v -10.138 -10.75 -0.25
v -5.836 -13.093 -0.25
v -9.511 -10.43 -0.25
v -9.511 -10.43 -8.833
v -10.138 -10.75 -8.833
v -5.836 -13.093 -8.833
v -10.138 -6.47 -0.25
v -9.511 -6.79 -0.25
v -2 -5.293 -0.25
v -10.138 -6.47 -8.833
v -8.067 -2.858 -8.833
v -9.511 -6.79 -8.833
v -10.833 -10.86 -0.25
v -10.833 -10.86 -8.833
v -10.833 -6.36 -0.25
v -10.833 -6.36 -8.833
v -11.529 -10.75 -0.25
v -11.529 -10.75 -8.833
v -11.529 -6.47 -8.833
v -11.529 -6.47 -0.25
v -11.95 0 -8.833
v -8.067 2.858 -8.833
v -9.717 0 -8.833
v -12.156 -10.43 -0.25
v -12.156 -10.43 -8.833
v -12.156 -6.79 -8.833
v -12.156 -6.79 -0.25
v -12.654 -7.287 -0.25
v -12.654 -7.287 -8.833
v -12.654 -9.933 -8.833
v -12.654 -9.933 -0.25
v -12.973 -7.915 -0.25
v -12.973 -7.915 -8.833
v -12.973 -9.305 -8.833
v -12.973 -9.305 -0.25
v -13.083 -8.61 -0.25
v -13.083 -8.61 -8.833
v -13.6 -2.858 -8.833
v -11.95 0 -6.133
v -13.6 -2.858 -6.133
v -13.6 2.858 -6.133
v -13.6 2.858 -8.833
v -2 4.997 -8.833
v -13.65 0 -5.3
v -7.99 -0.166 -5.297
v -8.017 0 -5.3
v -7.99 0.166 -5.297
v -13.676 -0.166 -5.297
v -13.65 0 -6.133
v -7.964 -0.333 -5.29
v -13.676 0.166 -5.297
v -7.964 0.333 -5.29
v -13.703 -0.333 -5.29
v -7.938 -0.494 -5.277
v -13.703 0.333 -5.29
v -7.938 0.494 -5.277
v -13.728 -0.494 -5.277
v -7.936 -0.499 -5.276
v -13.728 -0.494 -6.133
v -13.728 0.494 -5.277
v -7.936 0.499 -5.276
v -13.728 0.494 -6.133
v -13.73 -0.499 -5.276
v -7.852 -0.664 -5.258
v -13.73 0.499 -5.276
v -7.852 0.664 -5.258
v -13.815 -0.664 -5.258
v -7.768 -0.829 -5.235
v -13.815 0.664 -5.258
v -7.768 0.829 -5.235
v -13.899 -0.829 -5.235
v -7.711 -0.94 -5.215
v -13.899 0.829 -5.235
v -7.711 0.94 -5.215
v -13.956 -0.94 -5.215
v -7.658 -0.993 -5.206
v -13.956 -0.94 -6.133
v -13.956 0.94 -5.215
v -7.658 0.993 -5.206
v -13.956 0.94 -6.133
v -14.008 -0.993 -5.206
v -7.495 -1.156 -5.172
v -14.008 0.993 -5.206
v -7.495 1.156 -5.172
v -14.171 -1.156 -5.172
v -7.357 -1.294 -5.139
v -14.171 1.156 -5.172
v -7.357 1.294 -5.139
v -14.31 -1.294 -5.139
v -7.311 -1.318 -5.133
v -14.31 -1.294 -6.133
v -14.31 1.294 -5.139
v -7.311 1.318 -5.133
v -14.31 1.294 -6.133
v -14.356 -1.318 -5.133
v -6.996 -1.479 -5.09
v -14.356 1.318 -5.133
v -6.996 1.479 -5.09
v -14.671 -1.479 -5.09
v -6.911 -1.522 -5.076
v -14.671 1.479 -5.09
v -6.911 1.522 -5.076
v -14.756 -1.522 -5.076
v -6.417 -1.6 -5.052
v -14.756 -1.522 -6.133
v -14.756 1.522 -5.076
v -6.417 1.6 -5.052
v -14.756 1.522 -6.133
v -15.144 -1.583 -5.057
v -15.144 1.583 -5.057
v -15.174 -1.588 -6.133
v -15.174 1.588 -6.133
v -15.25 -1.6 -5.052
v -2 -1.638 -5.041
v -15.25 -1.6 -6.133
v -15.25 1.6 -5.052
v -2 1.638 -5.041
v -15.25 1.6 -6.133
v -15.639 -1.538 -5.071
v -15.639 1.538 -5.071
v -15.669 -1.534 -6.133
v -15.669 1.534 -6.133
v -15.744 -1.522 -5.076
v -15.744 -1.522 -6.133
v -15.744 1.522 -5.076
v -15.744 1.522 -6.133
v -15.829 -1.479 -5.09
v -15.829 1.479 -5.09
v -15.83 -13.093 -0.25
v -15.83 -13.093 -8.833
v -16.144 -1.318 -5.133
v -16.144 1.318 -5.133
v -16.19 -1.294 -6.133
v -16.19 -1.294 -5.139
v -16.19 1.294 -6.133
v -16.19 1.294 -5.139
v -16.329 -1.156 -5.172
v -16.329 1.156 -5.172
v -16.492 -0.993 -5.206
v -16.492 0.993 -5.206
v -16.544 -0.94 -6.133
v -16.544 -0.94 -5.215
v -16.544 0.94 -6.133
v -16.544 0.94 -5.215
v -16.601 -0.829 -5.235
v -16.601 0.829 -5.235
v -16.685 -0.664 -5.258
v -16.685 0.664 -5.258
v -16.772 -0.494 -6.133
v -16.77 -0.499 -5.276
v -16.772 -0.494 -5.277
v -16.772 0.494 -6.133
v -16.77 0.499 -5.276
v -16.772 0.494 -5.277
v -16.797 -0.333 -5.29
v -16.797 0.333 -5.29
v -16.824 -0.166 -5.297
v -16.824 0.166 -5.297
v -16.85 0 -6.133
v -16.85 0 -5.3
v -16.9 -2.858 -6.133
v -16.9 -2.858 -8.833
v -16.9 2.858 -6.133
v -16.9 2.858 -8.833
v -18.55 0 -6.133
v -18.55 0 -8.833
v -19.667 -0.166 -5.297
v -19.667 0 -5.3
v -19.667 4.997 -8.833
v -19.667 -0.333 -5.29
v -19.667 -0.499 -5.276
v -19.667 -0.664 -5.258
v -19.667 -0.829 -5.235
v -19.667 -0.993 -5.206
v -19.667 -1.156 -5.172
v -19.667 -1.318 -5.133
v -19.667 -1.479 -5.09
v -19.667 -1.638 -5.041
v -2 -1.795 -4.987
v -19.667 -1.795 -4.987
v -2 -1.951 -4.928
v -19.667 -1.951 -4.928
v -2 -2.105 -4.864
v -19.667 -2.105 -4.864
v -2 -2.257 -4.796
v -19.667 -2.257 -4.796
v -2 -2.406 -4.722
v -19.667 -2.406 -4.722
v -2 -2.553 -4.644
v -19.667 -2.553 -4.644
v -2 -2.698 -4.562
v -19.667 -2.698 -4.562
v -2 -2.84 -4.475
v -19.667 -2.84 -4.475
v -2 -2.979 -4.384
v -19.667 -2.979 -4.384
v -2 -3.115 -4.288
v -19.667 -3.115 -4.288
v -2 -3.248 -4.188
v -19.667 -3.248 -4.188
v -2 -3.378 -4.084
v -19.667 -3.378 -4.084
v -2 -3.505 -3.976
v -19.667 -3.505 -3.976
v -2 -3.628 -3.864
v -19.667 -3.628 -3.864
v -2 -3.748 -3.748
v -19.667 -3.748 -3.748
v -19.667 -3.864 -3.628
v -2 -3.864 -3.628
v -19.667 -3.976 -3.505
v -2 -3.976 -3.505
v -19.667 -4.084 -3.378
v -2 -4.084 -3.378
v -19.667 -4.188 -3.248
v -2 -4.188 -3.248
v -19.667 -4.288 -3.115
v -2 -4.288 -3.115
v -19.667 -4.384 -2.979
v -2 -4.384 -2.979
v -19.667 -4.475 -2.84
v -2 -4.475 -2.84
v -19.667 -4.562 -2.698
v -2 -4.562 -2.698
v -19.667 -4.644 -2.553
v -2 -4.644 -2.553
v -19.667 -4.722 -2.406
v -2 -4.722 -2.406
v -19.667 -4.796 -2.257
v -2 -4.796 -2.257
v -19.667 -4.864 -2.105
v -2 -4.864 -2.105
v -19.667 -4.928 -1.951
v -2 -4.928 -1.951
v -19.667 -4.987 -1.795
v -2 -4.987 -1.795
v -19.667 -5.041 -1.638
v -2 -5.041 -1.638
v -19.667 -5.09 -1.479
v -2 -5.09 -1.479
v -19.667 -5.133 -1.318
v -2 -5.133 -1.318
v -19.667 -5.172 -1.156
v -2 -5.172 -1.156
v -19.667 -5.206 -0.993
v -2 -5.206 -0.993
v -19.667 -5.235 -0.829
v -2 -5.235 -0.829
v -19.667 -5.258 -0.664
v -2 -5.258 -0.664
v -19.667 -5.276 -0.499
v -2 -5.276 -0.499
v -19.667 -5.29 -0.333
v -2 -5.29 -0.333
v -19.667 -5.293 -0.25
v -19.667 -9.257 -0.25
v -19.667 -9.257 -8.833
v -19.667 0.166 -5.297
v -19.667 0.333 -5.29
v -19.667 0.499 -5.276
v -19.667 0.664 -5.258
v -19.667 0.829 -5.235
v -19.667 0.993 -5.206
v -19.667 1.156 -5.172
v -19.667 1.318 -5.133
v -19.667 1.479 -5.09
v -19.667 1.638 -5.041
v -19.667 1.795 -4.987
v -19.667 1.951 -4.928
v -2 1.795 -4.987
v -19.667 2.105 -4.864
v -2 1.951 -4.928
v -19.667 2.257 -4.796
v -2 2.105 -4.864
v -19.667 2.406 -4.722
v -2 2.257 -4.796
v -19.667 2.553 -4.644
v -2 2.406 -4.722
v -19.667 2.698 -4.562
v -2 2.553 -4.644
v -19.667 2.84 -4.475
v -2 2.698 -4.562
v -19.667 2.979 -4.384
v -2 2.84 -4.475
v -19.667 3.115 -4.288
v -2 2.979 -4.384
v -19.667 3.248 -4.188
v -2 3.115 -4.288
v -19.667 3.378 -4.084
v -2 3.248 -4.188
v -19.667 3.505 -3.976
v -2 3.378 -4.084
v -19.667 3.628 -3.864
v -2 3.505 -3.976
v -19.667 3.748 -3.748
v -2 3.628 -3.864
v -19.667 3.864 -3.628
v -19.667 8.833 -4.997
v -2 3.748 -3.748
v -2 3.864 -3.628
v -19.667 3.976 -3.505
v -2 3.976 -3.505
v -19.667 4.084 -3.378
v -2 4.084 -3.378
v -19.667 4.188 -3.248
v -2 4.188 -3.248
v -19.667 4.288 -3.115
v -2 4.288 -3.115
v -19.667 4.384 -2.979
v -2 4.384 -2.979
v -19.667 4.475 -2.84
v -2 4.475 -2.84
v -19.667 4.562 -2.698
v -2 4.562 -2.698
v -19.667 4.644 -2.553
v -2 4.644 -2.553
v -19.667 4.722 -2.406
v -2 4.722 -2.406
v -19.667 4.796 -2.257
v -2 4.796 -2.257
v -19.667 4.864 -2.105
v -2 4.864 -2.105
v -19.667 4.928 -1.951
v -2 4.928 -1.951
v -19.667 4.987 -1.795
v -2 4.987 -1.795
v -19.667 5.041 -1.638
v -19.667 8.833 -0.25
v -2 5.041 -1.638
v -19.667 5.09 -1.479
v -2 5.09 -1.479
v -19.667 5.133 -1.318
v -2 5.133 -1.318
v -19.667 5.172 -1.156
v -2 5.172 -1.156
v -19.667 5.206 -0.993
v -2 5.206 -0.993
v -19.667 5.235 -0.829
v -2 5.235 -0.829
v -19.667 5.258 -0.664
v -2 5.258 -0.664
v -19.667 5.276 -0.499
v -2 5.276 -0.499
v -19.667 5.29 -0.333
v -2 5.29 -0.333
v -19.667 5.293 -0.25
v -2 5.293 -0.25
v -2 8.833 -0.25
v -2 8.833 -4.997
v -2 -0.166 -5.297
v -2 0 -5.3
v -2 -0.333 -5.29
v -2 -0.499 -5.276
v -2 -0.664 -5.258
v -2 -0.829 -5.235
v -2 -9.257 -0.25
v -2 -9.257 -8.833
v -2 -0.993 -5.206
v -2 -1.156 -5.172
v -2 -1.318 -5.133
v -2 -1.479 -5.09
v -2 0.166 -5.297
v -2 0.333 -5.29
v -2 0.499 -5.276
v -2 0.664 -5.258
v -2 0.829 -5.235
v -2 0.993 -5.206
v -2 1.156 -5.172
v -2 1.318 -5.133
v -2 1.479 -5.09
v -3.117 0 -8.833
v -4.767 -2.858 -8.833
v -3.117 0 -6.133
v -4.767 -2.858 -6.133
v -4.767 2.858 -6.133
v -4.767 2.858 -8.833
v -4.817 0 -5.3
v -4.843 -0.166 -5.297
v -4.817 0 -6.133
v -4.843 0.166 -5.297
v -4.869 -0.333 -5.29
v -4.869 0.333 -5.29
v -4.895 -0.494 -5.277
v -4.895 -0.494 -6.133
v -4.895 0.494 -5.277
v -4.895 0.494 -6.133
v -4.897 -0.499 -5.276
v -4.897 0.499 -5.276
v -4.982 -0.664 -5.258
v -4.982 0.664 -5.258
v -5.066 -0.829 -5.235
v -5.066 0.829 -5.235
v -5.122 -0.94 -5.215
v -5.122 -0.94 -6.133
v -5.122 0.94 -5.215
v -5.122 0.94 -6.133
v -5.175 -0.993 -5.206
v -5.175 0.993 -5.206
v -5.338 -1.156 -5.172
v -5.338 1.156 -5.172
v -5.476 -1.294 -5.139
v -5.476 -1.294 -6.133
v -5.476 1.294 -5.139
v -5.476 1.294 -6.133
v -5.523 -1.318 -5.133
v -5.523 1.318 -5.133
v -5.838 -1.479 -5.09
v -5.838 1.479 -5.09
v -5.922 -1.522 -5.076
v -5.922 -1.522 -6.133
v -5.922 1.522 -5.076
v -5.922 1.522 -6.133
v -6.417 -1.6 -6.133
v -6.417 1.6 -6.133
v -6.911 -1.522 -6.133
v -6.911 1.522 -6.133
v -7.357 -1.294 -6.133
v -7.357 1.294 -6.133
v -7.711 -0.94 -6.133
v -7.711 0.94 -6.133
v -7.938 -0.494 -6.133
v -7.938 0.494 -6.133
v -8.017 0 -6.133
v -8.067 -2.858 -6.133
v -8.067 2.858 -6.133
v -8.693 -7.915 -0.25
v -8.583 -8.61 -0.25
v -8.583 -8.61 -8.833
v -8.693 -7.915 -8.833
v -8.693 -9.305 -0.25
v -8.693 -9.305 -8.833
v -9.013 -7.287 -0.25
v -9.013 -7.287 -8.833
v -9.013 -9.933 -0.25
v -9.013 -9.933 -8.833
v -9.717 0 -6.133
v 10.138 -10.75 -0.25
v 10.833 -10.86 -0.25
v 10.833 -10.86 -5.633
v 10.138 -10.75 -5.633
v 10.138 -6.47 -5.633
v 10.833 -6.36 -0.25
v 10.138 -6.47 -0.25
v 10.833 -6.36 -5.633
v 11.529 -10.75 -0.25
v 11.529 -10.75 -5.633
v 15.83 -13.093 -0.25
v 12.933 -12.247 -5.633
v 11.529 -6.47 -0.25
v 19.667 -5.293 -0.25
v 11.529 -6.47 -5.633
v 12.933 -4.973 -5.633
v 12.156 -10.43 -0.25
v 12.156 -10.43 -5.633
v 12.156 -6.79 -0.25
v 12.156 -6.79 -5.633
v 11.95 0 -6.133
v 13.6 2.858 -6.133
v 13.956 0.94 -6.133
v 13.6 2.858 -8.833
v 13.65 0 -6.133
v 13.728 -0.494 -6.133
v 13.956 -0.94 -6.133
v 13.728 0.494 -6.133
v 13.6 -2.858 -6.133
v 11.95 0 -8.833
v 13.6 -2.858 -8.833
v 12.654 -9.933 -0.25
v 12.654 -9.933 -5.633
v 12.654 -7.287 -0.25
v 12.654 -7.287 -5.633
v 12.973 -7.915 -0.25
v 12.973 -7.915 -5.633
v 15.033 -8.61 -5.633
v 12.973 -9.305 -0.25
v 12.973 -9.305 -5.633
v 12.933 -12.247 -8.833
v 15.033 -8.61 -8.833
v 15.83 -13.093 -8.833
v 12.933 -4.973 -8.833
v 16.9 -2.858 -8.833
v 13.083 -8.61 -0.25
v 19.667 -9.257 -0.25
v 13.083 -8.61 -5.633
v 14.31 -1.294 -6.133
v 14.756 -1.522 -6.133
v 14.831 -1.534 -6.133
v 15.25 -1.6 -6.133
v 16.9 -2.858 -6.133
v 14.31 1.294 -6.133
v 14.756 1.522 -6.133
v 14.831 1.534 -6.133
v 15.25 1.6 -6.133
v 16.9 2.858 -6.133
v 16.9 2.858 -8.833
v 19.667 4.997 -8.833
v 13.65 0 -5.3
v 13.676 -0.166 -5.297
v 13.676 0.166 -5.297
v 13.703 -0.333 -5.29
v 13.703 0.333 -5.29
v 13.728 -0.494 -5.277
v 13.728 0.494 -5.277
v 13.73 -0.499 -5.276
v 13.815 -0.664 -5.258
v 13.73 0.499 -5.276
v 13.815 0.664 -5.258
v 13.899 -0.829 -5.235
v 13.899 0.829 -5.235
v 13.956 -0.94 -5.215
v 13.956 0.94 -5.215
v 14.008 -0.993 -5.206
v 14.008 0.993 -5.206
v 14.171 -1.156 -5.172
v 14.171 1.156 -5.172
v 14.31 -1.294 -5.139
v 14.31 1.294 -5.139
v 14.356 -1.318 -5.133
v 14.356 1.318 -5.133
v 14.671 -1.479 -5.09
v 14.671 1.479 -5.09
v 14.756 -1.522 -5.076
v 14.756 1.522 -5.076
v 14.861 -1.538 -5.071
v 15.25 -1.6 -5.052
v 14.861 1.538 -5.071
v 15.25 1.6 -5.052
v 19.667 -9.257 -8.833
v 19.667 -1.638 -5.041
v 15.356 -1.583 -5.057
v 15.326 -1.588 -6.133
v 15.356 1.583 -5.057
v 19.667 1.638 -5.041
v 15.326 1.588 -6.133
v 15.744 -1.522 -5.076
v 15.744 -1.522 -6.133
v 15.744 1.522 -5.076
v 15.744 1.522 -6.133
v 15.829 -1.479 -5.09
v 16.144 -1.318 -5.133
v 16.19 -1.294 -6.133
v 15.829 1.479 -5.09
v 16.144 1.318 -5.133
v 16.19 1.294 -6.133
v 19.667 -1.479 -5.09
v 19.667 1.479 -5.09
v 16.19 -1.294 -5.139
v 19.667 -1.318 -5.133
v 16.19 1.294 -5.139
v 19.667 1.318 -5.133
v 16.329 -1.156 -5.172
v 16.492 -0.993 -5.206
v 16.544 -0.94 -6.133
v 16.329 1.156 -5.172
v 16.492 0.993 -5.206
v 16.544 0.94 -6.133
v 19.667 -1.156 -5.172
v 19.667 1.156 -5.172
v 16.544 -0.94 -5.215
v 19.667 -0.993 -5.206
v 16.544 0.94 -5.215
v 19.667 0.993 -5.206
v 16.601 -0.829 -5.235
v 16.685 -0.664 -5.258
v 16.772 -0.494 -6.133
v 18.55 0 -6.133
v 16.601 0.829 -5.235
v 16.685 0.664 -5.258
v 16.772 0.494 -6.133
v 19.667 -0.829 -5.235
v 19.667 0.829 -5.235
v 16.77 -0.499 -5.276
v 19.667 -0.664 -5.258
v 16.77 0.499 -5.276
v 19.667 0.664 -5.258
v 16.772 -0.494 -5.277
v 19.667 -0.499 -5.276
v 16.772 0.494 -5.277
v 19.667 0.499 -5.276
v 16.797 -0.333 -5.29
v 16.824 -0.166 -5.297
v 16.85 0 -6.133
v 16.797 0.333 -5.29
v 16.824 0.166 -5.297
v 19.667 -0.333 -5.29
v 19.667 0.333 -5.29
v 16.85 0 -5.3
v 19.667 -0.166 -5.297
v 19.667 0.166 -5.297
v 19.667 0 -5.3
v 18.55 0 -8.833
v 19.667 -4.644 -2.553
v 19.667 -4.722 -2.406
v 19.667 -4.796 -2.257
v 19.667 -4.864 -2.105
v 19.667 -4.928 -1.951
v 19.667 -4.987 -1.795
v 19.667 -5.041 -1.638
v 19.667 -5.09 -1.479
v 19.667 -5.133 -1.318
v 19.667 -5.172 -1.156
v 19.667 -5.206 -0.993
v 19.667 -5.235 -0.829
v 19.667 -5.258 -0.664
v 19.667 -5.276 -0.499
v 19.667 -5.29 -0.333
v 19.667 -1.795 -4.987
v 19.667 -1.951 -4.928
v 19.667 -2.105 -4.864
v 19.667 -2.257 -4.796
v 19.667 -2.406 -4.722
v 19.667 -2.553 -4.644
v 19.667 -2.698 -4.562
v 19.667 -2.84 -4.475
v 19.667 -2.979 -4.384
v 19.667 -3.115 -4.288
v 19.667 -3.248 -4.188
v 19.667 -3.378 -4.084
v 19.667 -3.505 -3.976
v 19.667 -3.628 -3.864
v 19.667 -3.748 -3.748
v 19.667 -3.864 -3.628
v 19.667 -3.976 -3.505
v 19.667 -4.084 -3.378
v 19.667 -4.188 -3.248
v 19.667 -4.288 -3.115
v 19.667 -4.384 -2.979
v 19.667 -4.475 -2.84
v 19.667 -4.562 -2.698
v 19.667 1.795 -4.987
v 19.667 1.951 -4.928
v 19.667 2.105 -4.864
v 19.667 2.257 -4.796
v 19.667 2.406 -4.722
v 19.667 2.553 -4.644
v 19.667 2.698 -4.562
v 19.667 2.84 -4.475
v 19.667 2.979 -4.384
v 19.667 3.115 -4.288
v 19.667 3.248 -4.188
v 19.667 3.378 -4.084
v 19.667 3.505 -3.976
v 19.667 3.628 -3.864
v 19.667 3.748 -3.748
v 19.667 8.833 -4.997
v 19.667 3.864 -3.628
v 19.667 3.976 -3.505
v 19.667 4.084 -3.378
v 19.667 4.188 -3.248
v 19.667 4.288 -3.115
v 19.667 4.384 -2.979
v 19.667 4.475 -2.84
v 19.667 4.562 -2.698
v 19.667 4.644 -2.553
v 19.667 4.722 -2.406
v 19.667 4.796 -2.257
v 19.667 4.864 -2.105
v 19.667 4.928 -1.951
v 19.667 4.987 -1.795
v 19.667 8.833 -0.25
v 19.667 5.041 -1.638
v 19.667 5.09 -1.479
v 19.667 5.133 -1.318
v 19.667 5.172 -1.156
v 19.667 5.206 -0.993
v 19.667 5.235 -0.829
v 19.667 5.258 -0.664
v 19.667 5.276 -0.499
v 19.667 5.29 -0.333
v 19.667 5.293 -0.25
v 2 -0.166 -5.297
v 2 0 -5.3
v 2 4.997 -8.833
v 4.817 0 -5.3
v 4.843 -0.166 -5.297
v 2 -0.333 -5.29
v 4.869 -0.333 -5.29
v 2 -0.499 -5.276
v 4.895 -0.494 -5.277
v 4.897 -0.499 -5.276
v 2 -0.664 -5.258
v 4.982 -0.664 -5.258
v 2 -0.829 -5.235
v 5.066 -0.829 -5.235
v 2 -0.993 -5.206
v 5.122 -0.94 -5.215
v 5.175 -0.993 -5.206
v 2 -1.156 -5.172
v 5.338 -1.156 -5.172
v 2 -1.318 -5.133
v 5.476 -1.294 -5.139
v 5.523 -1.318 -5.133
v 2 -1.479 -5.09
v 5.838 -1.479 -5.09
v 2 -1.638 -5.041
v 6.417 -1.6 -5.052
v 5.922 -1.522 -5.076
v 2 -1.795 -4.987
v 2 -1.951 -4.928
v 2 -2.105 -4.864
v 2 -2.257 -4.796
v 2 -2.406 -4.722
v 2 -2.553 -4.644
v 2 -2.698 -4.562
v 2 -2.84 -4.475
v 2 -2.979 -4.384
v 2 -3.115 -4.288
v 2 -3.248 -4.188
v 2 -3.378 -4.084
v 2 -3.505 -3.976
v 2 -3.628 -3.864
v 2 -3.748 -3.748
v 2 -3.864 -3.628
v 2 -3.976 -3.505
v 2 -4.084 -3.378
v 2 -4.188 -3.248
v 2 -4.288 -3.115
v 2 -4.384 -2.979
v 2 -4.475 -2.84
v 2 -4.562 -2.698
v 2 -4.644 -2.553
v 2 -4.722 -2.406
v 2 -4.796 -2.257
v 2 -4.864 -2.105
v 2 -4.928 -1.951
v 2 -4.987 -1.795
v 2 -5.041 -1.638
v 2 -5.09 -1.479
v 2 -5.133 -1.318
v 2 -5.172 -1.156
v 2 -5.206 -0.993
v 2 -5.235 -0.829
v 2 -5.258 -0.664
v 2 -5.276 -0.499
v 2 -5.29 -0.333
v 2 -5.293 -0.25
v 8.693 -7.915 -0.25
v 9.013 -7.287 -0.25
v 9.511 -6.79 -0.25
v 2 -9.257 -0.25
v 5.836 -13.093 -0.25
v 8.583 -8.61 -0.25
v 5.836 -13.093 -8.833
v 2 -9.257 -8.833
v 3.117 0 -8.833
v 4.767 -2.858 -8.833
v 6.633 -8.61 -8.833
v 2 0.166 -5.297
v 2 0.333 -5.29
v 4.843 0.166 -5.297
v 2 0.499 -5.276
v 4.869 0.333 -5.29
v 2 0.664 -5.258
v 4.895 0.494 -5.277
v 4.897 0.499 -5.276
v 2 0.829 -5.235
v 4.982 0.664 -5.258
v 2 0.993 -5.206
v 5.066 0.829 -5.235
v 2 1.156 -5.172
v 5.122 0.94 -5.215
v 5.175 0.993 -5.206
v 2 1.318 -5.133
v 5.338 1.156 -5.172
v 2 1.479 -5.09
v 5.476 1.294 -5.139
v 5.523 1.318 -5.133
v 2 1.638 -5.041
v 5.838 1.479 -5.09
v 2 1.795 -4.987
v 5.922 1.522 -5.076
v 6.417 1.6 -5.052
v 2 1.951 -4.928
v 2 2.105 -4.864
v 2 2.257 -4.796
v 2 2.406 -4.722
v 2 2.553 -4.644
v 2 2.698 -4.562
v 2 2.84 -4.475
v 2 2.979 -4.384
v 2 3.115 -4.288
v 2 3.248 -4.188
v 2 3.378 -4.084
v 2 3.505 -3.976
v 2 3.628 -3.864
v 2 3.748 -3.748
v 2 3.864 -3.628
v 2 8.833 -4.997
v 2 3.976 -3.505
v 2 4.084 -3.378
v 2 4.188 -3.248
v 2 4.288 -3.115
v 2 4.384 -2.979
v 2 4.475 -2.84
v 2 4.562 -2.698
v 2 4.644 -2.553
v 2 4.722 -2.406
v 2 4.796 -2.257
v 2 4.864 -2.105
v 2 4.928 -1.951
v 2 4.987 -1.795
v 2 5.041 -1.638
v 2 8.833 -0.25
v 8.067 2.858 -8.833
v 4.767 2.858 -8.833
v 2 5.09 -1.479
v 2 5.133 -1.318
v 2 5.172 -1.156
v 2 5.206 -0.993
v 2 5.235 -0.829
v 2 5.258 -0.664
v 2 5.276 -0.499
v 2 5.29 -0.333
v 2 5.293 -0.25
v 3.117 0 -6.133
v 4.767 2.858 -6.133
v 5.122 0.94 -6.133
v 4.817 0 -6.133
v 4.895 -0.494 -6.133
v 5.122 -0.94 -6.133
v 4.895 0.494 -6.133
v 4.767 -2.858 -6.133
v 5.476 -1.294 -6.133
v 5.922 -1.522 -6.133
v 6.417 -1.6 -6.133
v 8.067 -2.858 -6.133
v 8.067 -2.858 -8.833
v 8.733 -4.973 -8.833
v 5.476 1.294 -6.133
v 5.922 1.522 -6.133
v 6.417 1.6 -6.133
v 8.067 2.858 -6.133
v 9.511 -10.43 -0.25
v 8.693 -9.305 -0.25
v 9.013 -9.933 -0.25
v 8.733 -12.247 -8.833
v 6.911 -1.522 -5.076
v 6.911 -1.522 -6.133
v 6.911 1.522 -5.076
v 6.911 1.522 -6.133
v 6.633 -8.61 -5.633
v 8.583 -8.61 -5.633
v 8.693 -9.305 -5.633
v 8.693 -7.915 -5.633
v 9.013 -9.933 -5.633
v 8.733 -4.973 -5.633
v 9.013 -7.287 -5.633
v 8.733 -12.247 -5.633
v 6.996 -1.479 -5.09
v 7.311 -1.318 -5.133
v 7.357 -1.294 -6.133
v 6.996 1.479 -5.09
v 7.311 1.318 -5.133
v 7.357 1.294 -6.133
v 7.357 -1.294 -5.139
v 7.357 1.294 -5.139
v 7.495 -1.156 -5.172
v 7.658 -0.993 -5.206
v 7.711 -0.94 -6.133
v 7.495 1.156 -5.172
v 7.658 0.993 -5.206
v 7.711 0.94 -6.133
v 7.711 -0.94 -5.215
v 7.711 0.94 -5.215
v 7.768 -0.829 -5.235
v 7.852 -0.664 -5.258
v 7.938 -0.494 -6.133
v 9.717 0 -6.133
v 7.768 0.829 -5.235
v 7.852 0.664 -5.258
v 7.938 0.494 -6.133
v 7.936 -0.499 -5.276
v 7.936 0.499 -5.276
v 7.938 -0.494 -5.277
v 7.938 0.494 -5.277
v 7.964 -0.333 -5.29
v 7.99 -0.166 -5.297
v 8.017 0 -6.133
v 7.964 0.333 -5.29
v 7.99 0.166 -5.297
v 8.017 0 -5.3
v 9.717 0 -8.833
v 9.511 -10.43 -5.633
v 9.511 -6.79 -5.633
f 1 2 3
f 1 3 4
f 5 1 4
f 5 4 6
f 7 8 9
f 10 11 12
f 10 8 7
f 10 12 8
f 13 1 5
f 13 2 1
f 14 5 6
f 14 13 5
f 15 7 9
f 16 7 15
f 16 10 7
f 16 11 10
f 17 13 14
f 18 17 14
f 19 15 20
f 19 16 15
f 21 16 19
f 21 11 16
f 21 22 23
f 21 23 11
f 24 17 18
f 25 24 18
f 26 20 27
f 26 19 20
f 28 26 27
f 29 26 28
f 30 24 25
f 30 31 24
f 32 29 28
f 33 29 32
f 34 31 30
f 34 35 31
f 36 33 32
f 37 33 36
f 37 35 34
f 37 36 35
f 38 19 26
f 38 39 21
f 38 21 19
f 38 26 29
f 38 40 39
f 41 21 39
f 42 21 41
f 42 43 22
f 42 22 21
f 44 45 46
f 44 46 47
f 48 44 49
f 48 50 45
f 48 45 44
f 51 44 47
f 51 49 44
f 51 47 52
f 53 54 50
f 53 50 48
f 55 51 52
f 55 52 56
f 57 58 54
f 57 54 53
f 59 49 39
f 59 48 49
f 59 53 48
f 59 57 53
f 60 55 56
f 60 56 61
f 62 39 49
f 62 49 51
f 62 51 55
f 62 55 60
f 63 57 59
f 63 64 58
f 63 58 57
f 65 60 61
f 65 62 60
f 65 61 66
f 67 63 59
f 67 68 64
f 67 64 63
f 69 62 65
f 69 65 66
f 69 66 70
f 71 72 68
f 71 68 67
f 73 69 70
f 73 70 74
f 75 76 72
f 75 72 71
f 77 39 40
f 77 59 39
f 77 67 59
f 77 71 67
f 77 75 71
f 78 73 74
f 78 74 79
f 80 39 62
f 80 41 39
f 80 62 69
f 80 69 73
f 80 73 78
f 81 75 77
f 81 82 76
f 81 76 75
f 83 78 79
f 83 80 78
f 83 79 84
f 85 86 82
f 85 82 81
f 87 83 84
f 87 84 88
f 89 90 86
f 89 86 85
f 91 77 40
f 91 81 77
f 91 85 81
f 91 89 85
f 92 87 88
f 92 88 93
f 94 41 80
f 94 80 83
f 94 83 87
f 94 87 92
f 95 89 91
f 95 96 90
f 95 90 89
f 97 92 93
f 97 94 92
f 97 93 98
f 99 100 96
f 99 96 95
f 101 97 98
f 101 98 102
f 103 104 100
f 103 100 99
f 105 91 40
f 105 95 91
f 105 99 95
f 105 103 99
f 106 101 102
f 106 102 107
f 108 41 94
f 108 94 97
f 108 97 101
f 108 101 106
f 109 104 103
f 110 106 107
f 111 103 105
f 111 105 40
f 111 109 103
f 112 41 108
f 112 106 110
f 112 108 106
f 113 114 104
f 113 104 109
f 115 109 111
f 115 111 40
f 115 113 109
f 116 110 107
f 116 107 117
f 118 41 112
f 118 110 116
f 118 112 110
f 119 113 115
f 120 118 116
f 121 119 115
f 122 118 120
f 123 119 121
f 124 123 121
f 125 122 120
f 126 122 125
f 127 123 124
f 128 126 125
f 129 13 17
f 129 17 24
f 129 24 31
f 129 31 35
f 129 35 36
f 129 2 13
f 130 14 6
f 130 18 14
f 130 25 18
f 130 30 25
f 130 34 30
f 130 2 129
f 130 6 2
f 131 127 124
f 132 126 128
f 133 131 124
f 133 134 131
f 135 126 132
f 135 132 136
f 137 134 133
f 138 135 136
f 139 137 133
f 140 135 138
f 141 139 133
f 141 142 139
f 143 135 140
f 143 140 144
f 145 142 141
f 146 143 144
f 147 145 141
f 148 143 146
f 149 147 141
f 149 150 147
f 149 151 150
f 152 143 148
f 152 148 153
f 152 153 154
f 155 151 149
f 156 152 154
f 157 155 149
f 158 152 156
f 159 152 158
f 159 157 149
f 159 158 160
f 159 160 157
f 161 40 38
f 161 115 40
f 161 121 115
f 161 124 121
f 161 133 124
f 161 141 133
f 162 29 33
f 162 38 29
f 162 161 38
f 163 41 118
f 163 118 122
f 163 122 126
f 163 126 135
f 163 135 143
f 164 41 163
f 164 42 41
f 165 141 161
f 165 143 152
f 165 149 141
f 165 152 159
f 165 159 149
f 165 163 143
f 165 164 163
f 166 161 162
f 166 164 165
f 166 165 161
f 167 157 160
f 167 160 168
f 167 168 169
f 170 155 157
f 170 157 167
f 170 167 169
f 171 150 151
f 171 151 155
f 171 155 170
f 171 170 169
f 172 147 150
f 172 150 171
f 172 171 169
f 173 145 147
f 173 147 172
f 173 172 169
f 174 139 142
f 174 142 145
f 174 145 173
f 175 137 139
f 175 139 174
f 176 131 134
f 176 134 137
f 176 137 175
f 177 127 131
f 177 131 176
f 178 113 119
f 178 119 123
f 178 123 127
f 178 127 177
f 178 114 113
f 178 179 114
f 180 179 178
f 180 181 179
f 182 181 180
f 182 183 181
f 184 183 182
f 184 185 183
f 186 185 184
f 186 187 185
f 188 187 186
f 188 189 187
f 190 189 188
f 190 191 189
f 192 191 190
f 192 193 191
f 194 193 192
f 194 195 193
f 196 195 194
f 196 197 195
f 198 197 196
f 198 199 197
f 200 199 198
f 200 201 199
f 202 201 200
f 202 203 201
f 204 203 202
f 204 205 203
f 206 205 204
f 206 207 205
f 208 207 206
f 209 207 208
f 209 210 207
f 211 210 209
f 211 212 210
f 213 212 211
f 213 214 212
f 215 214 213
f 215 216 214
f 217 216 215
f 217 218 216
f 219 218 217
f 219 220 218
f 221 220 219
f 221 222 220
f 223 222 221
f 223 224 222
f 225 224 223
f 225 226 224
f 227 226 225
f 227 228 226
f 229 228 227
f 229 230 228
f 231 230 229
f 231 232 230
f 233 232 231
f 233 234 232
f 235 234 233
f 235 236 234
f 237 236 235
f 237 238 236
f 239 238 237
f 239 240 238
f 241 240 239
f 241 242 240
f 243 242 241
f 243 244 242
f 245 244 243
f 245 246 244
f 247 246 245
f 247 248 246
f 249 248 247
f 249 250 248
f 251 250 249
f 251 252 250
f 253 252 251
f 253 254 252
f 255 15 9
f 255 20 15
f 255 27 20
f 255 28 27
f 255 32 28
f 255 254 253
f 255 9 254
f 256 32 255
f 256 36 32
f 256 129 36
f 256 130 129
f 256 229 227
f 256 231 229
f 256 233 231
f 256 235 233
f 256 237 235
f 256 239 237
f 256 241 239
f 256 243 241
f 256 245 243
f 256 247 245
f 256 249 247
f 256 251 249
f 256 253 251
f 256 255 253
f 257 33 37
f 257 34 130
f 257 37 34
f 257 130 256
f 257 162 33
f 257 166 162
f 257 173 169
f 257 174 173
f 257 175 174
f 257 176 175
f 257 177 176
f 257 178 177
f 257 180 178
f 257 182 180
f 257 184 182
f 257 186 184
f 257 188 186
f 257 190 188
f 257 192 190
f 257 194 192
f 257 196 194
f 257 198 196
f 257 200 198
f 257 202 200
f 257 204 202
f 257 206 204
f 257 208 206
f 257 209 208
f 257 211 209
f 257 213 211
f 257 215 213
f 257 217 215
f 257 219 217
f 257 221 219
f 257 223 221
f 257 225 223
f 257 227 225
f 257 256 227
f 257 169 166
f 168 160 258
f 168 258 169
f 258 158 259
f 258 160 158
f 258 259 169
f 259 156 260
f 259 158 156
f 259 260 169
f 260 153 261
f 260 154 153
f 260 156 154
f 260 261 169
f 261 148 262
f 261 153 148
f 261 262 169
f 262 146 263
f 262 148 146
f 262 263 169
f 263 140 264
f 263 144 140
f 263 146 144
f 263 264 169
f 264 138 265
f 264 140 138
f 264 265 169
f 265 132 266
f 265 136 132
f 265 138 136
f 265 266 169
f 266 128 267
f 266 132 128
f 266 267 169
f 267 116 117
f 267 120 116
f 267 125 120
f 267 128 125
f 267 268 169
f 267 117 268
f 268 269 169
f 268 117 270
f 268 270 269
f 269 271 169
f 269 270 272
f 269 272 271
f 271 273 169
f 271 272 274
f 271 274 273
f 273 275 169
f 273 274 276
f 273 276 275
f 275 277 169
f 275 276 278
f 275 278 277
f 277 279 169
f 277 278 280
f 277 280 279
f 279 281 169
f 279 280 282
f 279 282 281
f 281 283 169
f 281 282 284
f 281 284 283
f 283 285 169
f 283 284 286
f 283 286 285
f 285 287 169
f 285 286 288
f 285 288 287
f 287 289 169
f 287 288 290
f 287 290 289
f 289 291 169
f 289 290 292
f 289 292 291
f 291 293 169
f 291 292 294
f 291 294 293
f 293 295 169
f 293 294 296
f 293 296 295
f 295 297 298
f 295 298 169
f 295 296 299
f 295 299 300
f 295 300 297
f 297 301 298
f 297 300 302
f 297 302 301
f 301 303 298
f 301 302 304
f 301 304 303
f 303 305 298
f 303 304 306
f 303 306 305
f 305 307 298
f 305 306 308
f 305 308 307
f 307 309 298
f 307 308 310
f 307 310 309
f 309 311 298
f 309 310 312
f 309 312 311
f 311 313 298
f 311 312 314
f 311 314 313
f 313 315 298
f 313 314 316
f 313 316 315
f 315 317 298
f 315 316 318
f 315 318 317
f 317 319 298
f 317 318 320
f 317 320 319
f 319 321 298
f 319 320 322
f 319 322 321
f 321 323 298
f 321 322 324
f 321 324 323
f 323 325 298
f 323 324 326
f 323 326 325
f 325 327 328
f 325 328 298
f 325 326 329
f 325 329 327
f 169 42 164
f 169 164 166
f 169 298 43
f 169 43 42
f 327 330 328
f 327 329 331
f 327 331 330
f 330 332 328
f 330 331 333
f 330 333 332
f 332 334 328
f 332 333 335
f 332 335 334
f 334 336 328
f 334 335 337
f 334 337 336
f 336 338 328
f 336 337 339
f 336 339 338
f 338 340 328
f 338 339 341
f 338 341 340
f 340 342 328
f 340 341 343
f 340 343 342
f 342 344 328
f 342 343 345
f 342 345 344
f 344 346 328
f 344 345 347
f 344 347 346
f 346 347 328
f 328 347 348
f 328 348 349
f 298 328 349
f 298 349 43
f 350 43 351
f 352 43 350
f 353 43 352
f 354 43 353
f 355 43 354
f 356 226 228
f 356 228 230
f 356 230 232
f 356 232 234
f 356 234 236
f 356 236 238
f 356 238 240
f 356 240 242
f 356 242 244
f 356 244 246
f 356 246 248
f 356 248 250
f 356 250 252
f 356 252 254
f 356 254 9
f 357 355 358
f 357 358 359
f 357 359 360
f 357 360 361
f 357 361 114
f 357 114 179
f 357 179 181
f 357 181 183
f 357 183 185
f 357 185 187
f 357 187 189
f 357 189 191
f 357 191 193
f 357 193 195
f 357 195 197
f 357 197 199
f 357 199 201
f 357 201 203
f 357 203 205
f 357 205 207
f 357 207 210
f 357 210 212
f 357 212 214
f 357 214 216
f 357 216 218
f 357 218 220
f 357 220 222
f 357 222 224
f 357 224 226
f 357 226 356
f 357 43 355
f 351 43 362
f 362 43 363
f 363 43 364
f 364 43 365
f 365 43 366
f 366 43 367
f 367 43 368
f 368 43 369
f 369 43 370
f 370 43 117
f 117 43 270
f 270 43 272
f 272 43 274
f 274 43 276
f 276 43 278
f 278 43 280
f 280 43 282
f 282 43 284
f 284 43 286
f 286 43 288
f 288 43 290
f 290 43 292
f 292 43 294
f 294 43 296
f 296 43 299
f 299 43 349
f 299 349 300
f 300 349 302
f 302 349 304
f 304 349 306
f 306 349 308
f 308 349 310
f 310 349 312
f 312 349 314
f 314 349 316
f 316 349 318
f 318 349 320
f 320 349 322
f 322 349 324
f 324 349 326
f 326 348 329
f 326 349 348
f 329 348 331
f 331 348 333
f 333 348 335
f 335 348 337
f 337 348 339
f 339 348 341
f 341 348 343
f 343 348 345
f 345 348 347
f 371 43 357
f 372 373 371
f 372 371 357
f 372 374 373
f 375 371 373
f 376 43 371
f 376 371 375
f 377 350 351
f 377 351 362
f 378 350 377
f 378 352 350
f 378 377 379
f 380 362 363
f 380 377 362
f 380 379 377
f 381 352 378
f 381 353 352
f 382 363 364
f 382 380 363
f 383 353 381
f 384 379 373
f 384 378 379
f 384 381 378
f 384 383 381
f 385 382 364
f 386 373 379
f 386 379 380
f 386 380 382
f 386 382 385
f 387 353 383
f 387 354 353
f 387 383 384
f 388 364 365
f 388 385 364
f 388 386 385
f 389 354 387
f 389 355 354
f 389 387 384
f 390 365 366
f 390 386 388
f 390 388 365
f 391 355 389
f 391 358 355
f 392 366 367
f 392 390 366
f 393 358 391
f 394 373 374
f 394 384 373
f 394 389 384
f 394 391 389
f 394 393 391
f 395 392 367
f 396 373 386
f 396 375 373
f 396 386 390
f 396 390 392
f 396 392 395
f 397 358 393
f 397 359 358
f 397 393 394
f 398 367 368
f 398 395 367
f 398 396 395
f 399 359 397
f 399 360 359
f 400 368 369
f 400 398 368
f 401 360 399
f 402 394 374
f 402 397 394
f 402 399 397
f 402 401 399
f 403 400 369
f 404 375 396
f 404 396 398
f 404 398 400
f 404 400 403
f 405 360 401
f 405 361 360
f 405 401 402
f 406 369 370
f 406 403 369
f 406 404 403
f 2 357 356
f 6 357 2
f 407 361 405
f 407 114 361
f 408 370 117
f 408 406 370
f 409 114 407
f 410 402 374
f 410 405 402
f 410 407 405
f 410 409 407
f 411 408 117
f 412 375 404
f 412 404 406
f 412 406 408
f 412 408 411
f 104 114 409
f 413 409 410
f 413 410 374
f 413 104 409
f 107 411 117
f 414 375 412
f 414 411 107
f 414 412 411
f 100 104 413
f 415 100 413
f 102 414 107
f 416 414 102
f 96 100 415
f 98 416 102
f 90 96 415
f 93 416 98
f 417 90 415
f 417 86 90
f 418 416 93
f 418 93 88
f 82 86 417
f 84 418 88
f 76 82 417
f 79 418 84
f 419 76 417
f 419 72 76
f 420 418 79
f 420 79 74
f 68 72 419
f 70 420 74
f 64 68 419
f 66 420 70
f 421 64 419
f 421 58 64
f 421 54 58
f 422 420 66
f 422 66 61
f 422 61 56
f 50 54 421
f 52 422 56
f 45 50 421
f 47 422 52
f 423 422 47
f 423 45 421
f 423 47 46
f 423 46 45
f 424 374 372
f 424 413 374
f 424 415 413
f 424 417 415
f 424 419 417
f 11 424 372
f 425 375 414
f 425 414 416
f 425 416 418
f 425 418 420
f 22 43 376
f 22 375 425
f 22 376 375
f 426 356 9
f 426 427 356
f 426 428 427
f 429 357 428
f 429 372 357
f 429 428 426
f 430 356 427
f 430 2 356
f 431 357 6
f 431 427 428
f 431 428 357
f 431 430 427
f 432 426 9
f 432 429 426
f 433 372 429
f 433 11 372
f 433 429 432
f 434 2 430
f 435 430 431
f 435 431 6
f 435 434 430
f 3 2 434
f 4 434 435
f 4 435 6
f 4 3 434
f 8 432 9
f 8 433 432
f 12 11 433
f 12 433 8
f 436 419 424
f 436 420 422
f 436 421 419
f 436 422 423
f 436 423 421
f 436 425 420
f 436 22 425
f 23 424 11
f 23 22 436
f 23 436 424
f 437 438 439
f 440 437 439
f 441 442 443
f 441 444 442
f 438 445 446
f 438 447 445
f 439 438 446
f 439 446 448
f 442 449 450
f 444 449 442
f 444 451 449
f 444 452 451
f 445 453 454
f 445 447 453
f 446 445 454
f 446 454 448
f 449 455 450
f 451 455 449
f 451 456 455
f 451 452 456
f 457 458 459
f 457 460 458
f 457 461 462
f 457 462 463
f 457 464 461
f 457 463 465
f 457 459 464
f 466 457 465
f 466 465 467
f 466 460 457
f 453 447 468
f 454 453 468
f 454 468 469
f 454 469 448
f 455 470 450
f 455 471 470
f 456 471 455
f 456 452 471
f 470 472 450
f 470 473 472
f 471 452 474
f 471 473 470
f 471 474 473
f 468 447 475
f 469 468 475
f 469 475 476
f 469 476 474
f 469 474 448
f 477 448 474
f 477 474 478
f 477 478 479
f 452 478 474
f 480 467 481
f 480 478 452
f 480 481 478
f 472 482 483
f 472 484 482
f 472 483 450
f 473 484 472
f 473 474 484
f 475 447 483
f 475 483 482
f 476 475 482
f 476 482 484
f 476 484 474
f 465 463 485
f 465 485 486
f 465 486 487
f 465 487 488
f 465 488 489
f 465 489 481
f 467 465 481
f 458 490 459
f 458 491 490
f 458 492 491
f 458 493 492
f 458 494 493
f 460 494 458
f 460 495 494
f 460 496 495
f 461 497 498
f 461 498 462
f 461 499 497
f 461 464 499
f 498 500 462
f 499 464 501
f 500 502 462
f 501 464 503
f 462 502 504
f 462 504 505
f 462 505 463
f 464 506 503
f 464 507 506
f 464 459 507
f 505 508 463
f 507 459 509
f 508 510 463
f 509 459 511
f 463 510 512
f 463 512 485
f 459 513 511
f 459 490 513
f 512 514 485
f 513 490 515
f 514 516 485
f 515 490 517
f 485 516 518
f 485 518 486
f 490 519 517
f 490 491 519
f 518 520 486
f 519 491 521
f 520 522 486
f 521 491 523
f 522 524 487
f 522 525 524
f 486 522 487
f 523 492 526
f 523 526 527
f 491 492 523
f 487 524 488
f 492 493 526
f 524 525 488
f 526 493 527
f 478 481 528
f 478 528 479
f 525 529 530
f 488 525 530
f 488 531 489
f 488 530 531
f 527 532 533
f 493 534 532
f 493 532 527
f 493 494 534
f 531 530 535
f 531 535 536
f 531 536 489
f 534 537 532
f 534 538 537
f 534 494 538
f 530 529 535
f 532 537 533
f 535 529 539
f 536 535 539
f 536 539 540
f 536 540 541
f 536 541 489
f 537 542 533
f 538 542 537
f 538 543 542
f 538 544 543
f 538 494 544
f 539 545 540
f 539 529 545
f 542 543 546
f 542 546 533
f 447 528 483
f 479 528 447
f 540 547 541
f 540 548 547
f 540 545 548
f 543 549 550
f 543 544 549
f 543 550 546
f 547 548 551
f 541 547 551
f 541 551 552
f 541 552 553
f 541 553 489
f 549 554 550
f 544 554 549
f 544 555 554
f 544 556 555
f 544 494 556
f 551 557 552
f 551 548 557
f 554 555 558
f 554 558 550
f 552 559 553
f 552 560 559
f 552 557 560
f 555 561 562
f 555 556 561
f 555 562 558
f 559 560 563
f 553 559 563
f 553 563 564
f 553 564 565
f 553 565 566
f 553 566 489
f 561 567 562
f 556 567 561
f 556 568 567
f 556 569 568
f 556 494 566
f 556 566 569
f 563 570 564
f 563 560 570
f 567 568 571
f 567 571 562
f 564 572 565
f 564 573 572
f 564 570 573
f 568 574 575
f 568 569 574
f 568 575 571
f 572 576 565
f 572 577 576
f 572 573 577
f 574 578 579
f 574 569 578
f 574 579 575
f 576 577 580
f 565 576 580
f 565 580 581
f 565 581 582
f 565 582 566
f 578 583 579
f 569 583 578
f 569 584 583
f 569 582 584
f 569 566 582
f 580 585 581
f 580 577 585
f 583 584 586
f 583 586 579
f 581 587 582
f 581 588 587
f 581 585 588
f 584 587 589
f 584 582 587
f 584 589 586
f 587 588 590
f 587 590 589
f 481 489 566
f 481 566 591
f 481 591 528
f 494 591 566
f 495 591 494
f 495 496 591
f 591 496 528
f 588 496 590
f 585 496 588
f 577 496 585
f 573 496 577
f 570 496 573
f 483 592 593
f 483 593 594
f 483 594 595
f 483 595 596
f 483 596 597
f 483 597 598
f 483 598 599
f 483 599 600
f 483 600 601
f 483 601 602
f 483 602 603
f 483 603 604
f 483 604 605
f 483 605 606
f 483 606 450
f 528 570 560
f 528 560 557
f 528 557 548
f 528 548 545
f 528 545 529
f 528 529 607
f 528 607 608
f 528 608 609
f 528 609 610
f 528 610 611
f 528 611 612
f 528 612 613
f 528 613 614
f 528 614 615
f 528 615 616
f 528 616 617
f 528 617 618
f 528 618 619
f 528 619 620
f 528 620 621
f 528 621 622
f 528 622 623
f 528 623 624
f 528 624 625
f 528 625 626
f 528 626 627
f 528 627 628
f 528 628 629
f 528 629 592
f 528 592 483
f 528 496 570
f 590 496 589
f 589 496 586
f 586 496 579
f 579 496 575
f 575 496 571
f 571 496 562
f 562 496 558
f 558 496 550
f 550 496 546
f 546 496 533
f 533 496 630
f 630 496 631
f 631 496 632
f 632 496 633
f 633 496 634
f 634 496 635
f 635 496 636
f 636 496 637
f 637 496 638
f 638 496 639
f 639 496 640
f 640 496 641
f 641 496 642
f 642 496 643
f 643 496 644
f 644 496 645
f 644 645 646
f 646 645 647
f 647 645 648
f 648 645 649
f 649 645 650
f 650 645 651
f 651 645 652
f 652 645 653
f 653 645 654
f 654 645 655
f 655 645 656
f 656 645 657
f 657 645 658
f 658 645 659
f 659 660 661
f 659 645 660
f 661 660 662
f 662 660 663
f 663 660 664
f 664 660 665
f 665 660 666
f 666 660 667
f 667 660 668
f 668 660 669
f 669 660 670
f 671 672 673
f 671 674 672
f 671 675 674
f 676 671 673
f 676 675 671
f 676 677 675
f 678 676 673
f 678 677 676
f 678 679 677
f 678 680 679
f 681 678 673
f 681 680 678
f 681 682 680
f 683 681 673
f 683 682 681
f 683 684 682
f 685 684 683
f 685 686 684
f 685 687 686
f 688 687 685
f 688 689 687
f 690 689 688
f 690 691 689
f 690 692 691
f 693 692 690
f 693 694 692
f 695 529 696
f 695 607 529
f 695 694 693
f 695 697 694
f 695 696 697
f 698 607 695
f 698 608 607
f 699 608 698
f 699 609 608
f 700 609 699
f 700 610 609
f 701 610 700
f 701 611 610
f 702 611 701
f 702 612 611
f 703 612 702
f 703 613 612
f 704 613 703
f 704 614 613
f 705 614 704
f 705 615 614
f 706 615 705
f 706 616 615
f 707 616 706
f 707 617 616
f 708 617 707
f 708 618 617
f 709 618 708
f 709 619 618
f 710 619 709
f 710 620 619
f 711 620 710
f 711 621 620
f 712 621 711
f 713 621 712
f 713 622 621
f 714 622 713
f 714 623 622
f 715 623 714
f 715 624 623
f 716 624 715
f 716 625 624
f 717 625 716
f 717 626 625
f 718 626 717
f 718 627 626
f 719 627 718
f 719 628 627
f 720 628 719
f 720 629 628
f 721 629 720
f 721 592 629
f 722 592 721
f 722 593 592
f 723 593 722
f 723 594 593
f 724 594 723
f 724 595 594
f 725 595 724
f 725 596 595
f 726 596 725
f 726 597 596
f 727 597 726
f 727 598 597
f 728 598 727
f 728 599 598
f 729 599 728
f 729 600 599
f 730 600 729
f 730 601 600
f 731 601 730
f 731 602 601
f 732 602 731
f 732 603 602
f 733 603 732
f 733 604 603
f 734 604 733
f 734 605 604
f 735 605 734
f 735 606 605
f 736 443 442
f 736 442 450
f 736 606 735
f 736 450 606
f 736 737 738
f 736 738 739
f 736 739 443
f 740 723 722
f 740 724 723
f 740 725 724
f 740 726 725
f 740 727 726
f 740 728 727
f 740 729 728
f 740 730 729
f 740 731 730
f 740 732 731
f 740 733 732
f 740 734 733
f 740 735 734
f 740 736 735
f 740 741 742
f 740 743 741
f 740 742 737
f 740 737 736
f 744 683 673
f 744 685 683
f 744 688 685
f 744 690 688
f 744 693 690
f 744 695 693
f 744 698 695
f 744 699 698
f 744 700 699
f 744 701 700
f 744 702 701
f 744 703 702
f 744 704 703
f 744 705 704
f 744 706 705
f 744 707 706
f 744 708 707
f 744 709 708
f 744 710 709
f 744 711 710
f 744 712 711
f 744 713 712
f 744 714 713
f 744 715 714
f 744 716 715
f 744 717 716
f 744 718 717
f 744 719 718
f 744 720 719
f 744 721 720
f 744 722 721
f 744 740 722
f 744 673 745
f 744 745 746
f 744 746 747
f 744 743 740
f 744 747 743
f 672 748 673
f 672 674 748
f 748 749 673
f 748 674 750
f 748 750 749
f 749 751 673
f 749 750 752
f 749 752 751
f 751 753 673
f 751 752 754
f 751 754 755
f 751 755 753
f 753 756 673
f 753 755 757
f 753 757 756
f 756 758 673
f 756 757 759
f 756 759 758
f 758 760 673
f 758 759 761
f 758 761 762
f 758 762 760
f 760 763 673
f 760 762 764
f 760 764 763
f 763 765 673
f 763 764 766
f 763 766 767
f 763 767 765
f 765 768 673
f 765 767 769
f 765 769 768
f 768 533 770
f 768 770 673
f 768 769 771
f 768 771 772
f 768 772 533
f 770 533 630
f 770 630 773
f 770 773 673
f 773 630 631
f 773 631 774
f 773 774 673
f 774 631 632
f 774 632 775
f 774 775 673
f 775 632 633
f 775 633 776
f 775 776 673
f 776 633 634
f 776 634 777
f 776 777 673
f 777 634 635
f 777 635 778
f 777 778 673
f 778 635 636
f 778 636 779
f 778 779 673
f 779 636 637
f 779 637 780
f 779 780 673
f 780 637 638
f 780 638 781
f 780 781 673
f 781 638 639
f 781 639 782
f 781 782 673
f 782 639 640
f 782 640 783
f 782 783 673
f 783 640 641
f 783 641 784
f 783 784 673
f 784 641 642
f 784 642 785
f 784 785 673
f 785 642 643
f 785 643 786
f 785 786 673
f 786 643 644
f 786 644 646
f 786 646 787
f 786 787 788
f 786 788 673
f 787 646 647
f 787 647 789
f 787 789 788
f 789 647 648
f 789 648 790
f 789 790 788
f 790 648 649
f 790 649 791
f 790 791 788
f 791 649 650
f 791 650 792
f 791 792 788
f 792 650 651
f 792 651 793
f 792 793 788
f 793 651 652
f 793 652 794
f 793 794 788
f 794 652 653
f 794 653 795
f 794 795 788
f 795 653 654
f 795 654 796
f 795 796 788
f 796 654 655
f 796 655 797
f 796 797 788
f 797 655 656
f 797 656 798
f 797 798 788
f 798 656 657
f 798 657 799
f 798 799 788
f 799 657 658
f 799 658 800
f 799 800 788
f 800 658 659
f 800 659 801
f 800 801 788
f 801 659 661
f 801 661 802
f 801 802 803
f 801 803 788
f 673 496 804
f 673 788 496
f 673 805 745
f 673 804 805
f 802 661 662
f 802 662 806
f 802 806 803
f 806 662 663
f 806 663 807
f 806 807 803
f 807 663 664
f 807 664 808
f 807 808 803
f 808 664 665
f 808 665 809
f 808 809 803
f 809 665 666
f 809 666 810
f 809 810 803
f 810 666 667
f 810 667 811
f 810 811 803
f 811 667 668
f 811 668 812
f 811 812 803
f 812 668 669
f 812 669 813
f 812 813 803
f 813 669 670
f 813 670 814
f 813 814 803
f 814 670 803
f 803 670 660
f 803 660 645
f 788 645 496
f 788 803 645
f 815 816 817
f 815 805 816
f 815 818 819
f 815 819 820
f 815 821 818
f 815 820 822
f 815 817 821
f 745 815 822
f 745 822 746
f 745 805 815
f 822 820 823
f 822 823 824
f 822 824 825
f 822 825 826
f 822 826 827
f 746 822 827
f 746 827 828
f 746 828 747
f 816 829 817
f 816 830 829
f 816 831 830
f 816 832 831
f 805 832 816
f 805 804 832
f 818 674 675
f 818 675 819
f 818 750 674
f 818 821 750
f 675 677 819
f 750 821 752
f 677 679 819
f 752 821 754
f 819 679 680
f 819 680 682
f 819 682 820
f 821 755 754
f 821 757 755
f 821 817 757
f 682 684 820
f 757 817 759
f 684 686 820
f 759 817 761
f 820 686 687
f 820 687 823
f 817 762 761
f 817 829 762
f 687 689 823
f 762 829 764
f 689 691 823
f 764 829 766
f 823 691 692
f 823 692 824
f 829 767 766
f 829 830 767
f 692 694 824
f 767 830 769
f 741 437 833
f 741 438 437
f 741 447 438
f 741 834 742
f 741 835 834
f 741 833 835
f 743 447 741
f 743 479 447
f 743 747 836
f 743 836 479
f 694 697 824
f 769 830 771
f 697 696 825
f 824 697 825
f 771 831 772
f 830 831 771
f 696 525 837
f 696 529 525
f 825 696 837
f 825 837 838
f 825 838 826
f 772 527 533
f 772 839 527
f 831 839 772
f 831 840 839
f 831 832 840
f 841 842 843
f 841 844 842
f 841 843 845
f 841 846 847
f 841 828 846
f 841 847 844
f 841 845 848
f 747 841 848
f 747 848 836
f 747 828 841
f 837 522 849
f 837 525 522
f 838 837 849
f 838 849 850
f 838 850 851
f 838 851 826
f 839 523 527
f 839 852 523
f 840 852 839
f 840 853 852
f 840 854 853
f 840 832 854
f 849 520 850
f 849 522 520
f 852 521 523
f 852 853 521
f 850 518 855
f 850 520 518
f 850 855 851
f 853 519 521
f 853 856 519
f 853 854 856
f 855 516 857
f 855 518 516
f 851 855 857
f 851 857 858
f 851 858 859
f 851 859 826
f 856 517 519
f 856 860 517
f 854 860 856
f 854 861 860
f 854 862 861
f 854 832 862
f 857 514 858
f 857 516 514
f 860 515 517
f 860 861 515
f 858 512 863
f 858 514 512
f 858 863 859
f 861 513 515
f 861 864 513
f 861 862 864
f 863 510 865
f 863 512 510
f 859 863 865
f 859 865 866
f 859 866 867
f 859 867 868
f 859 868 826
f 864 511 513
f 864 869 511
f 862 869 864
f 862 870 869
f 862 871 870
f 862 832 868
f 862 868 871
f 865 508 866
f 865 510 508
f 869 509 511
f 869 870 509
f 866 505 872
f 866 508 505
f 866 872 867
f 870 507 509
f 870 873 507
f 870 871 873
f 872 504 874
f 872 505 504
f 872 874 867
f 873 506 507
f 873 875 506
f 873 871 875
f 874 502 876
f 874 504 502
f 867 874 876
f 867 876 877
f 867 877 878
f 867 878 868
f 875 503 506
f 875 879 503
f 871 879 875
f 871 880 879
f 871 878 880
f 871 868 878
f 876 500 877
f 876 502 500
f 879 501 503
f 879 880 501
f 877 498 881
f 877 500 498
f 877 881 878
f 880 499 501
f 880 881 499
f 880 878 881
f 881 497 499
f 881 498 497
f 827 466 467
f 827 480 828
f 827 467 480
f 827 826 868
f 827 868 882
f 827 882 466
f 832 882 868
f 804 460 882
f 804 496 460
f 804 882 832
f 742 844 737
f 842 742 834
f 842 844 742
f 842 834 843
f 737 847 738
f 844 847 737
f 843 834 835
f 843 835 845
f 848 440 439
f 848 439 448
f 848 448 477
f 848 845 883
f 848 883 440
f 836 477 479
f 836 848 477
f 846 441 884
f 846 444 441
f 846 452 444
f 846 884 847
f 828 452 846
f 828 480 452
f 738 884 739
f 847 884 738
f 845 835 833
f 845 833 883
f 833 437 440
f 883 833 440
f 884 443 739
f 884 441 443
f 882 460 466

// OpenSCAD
// file: ../666_1014.scad
//improving rendering speed.
draft = true;   // sets rendering quality to draft.
$fs = draft ? 5 : 0.5;
$fa = 10;



module 666_1014(draft){

    
difference(){

    translate([-(width_666_1014/2),-(depth_666_1014 - tube_for_undercarriage_outer_diameter/2 - coupling_wall_thickness_undercarriage),0])
        cube([width_666_1014,depth_666_1014,height_666_1014]);

	//tube
    translate ([0,0,- global_clearance/2])
        cylinder(h = height_666_1014 + global_clearance,r = tube_for_undercarriage_outer_diameter/2, $fn = draft ? 100 : 200);

    //bevelled edge
    translate([width_666_1014/2+sqrt(2)*coupling_wall_thickness_undercarriage,0,- global_clearance/2])
        rotate([0,0,45])
           cube([width_666_1014,width_666_1014,height_666_1014 + global_clearance]);

mirror([1,0,0])
    translate([width_666_1014/2+sqrt(2)*coupling_wall_thickness_undercarriage,0,- global_clearance/2])
        rotate([0,0,45])
            cube([width_666_1014,width_666_1014,height_666_1014 + global_clearance]);

    translate([-(width_666_1014/2) - global_clearance/2,- depth_666_1014 + height_666_1014/2-sqrt(2)*coupling_wall_thickness_undercarriage,height_666_1014/2])
        rotate([-135,0,0])
            cube([width_666_1014 + global_clearance, height_666_1014,height_666_1014]);
   
   translate([-(width_666_1014/2) - global_clearance/2, - depth_666_1014 + height_666_1014/2-sqrt(2)*coupling_wall_thickness_undercarriage,height_666_1014/2])  
        rotate([45,0,0])
            cube([width_666_1014 + global_clearance,height_666_1014,height_666_1014]);  


    // middle cut
    translate ([-0.25,- depth_666_1014,- global_clearance/2])
        cube ([0.5,depth_666_1014*2,height_666_1014 + global_clearance]);

    //screw
    translate([-width_666_1014/2 - global_clearance/2,-(thickness_between_tubes_undercarriage + tube_for_undercarriage_outer_diameter/2 + M4_screw_diameter/2), height_666_1014/2])
        rotate([0,90,0])
            cylinder(h = width_666_1014 + global_clearance,r = M4_screw_diameter/2, $fn = draft ? 10 : 20);

    translate([-width_666_1014/2,0,height_666_1014/4])
        rotate ([0,90,0])
            cylinder(h = width_666_1014, r = M3_screw_diameter/2, $fn = draft ? 10 :20 );

	translate([-width_666_1014/2,0,height_666_1014 - height_666_1014/4])
        rotate ([0,90,0])
            cylinder(h = width_666_1014, r = M3_screw_diameter/2, $fn = draft ? 10 :20 );


	//nut
	translate([-width_666_1014/2 - global_clearance, 0, height_666_1014/4])
	   rotate([0,90,0])
	      cylinder (h = M3_nut_height + global_clearance, r = M3_nut_diameter/2, $fn = 6);
    
    translate([width_666_1014/2 - M3_nut_height, 0, height_666_1014/4])
	   rotate([0,90,0])
	       cylinder (h = M3_nut_height + global_clearance, r = M3_nut_diameter/2, $fn = 6);

	translate([-width_666_1014/2 - global_clearance, 0, height_666_1014 - height_666_1014/4])
	   rotate([0,90,0])
	      cylinder (h = M3_nut_height + global_clearance, r = M3_nut_diameter/2, $fn = 6);
    
    translate([width_666_1014/2 - M3_nut_height, 0, height_666_1014 - height_666_1014/4])
	   rotate([0,90,0])
	       cylinder (h = M3_nut_height + global_clearance, r = M3_nut_diameter/2, $fn = 6);

	translate([width_666_1014/2 - M4_nut_height,-(thickness_between_tubes_undercarriage + tube_for_undercarriage_outer_diameter/2 + M4_screw_diameter/2), height_666_1014/2])
	   rotate([0,90,0])
	     cylinder (h = M4_nut_height + global_clearance, r = M4_nut_diameter/2, $fn = 6);

    }
}


module 666_1014_drillhelper(draft){

    
difference(){

    translate([-(width_666_1014_drillhelper/2),-(depth_666_1014 - tube_for_undercarriage_outer_diameter/2 - coupling_wall_thickness_undercarriage),-5])
       		cube([width_666_1014_drillhelper,depth_666_1014,height_666_1014 + 10]);

    //tube
    translate ([0,0,- global_clearance/2 - 5])
       		cylinder(h = height_666_1014 + global_clearance + 10,r = tube_for_undercarriage_outer_diameter/2, $fn = draft ? 100 : 200);


    // middle cut
    translate ([-global_clearance,- depth_666_1014,- global_clearance/2 - 5])
        	cube ([2* global_clearance, depth_666_1014*2,height_666_1014 + global_clearance + 10]);

    //screw
    translate([-width_666_1014_drillhelper/2 - global_clearance/2,-(thickness_between_tubes_undercarriage + tube_for_undercarriage_outer_diameter/2 + M4_screw_diameter/2), height_666_1014/2])
        rotate([0,90,0])
            cylinder(h = width_666_1014_drillhelper + global_clearance,r = M3_screw_diameter/2, $fn = draft ? 10 : 20);

    translate([-width_666_1014_drillhelper/2 - global_clearance/2,0,height_666_1014/4])
        rotate ([0,90,0])
            cylinder(h = width_666_1014_drillhelper + global_clearance, r = M3_screw_diameter/2, $fn = draft ? 10 :20 );

	translate([-width_666_1014_drillhelper/2 - global_clearance/2,0,height_666_1014 - height_666_1014/4])
        rotate ([0,90,0])
            cylinder(h = width_666_1014_drillhelper+global_clearance, r = M3_screw_diameter/2, $fn = draft ? 10 :20 );

    }
}


module 666_1014_A(draft){

    difference(){
        666_1014(draft);

        translate ([0,- depth_666_1014,- global_clearance/2])
            cube ([width_666_1014,depth_666_1014*2,height_666_1014 + global_clearance]);
    }
}


module 666_1014_B(draft){


    difference(){
        666_1014(draft);

        translate ([-width_666_1014, -depth_666_1014, -global_clearance/2])
           cube([width_666_1014, depth_666_1014*2, height_666_1014 + global_clearance]);
    }
}



		//666_1014(draft);

//translate([0,30,0])
		666_1014_drillhelper(draft);

include <../parameters.scad>
// main file
include <../../parameters.scad>

use <../666_1014.scad>

    translate([-2,0,0])
        rotate([0,-90,0])
            666_1014_A(draft=false);

    translate([2,0,0])
        rotate([0,90,0])
            666_1014_B(draft=false);
